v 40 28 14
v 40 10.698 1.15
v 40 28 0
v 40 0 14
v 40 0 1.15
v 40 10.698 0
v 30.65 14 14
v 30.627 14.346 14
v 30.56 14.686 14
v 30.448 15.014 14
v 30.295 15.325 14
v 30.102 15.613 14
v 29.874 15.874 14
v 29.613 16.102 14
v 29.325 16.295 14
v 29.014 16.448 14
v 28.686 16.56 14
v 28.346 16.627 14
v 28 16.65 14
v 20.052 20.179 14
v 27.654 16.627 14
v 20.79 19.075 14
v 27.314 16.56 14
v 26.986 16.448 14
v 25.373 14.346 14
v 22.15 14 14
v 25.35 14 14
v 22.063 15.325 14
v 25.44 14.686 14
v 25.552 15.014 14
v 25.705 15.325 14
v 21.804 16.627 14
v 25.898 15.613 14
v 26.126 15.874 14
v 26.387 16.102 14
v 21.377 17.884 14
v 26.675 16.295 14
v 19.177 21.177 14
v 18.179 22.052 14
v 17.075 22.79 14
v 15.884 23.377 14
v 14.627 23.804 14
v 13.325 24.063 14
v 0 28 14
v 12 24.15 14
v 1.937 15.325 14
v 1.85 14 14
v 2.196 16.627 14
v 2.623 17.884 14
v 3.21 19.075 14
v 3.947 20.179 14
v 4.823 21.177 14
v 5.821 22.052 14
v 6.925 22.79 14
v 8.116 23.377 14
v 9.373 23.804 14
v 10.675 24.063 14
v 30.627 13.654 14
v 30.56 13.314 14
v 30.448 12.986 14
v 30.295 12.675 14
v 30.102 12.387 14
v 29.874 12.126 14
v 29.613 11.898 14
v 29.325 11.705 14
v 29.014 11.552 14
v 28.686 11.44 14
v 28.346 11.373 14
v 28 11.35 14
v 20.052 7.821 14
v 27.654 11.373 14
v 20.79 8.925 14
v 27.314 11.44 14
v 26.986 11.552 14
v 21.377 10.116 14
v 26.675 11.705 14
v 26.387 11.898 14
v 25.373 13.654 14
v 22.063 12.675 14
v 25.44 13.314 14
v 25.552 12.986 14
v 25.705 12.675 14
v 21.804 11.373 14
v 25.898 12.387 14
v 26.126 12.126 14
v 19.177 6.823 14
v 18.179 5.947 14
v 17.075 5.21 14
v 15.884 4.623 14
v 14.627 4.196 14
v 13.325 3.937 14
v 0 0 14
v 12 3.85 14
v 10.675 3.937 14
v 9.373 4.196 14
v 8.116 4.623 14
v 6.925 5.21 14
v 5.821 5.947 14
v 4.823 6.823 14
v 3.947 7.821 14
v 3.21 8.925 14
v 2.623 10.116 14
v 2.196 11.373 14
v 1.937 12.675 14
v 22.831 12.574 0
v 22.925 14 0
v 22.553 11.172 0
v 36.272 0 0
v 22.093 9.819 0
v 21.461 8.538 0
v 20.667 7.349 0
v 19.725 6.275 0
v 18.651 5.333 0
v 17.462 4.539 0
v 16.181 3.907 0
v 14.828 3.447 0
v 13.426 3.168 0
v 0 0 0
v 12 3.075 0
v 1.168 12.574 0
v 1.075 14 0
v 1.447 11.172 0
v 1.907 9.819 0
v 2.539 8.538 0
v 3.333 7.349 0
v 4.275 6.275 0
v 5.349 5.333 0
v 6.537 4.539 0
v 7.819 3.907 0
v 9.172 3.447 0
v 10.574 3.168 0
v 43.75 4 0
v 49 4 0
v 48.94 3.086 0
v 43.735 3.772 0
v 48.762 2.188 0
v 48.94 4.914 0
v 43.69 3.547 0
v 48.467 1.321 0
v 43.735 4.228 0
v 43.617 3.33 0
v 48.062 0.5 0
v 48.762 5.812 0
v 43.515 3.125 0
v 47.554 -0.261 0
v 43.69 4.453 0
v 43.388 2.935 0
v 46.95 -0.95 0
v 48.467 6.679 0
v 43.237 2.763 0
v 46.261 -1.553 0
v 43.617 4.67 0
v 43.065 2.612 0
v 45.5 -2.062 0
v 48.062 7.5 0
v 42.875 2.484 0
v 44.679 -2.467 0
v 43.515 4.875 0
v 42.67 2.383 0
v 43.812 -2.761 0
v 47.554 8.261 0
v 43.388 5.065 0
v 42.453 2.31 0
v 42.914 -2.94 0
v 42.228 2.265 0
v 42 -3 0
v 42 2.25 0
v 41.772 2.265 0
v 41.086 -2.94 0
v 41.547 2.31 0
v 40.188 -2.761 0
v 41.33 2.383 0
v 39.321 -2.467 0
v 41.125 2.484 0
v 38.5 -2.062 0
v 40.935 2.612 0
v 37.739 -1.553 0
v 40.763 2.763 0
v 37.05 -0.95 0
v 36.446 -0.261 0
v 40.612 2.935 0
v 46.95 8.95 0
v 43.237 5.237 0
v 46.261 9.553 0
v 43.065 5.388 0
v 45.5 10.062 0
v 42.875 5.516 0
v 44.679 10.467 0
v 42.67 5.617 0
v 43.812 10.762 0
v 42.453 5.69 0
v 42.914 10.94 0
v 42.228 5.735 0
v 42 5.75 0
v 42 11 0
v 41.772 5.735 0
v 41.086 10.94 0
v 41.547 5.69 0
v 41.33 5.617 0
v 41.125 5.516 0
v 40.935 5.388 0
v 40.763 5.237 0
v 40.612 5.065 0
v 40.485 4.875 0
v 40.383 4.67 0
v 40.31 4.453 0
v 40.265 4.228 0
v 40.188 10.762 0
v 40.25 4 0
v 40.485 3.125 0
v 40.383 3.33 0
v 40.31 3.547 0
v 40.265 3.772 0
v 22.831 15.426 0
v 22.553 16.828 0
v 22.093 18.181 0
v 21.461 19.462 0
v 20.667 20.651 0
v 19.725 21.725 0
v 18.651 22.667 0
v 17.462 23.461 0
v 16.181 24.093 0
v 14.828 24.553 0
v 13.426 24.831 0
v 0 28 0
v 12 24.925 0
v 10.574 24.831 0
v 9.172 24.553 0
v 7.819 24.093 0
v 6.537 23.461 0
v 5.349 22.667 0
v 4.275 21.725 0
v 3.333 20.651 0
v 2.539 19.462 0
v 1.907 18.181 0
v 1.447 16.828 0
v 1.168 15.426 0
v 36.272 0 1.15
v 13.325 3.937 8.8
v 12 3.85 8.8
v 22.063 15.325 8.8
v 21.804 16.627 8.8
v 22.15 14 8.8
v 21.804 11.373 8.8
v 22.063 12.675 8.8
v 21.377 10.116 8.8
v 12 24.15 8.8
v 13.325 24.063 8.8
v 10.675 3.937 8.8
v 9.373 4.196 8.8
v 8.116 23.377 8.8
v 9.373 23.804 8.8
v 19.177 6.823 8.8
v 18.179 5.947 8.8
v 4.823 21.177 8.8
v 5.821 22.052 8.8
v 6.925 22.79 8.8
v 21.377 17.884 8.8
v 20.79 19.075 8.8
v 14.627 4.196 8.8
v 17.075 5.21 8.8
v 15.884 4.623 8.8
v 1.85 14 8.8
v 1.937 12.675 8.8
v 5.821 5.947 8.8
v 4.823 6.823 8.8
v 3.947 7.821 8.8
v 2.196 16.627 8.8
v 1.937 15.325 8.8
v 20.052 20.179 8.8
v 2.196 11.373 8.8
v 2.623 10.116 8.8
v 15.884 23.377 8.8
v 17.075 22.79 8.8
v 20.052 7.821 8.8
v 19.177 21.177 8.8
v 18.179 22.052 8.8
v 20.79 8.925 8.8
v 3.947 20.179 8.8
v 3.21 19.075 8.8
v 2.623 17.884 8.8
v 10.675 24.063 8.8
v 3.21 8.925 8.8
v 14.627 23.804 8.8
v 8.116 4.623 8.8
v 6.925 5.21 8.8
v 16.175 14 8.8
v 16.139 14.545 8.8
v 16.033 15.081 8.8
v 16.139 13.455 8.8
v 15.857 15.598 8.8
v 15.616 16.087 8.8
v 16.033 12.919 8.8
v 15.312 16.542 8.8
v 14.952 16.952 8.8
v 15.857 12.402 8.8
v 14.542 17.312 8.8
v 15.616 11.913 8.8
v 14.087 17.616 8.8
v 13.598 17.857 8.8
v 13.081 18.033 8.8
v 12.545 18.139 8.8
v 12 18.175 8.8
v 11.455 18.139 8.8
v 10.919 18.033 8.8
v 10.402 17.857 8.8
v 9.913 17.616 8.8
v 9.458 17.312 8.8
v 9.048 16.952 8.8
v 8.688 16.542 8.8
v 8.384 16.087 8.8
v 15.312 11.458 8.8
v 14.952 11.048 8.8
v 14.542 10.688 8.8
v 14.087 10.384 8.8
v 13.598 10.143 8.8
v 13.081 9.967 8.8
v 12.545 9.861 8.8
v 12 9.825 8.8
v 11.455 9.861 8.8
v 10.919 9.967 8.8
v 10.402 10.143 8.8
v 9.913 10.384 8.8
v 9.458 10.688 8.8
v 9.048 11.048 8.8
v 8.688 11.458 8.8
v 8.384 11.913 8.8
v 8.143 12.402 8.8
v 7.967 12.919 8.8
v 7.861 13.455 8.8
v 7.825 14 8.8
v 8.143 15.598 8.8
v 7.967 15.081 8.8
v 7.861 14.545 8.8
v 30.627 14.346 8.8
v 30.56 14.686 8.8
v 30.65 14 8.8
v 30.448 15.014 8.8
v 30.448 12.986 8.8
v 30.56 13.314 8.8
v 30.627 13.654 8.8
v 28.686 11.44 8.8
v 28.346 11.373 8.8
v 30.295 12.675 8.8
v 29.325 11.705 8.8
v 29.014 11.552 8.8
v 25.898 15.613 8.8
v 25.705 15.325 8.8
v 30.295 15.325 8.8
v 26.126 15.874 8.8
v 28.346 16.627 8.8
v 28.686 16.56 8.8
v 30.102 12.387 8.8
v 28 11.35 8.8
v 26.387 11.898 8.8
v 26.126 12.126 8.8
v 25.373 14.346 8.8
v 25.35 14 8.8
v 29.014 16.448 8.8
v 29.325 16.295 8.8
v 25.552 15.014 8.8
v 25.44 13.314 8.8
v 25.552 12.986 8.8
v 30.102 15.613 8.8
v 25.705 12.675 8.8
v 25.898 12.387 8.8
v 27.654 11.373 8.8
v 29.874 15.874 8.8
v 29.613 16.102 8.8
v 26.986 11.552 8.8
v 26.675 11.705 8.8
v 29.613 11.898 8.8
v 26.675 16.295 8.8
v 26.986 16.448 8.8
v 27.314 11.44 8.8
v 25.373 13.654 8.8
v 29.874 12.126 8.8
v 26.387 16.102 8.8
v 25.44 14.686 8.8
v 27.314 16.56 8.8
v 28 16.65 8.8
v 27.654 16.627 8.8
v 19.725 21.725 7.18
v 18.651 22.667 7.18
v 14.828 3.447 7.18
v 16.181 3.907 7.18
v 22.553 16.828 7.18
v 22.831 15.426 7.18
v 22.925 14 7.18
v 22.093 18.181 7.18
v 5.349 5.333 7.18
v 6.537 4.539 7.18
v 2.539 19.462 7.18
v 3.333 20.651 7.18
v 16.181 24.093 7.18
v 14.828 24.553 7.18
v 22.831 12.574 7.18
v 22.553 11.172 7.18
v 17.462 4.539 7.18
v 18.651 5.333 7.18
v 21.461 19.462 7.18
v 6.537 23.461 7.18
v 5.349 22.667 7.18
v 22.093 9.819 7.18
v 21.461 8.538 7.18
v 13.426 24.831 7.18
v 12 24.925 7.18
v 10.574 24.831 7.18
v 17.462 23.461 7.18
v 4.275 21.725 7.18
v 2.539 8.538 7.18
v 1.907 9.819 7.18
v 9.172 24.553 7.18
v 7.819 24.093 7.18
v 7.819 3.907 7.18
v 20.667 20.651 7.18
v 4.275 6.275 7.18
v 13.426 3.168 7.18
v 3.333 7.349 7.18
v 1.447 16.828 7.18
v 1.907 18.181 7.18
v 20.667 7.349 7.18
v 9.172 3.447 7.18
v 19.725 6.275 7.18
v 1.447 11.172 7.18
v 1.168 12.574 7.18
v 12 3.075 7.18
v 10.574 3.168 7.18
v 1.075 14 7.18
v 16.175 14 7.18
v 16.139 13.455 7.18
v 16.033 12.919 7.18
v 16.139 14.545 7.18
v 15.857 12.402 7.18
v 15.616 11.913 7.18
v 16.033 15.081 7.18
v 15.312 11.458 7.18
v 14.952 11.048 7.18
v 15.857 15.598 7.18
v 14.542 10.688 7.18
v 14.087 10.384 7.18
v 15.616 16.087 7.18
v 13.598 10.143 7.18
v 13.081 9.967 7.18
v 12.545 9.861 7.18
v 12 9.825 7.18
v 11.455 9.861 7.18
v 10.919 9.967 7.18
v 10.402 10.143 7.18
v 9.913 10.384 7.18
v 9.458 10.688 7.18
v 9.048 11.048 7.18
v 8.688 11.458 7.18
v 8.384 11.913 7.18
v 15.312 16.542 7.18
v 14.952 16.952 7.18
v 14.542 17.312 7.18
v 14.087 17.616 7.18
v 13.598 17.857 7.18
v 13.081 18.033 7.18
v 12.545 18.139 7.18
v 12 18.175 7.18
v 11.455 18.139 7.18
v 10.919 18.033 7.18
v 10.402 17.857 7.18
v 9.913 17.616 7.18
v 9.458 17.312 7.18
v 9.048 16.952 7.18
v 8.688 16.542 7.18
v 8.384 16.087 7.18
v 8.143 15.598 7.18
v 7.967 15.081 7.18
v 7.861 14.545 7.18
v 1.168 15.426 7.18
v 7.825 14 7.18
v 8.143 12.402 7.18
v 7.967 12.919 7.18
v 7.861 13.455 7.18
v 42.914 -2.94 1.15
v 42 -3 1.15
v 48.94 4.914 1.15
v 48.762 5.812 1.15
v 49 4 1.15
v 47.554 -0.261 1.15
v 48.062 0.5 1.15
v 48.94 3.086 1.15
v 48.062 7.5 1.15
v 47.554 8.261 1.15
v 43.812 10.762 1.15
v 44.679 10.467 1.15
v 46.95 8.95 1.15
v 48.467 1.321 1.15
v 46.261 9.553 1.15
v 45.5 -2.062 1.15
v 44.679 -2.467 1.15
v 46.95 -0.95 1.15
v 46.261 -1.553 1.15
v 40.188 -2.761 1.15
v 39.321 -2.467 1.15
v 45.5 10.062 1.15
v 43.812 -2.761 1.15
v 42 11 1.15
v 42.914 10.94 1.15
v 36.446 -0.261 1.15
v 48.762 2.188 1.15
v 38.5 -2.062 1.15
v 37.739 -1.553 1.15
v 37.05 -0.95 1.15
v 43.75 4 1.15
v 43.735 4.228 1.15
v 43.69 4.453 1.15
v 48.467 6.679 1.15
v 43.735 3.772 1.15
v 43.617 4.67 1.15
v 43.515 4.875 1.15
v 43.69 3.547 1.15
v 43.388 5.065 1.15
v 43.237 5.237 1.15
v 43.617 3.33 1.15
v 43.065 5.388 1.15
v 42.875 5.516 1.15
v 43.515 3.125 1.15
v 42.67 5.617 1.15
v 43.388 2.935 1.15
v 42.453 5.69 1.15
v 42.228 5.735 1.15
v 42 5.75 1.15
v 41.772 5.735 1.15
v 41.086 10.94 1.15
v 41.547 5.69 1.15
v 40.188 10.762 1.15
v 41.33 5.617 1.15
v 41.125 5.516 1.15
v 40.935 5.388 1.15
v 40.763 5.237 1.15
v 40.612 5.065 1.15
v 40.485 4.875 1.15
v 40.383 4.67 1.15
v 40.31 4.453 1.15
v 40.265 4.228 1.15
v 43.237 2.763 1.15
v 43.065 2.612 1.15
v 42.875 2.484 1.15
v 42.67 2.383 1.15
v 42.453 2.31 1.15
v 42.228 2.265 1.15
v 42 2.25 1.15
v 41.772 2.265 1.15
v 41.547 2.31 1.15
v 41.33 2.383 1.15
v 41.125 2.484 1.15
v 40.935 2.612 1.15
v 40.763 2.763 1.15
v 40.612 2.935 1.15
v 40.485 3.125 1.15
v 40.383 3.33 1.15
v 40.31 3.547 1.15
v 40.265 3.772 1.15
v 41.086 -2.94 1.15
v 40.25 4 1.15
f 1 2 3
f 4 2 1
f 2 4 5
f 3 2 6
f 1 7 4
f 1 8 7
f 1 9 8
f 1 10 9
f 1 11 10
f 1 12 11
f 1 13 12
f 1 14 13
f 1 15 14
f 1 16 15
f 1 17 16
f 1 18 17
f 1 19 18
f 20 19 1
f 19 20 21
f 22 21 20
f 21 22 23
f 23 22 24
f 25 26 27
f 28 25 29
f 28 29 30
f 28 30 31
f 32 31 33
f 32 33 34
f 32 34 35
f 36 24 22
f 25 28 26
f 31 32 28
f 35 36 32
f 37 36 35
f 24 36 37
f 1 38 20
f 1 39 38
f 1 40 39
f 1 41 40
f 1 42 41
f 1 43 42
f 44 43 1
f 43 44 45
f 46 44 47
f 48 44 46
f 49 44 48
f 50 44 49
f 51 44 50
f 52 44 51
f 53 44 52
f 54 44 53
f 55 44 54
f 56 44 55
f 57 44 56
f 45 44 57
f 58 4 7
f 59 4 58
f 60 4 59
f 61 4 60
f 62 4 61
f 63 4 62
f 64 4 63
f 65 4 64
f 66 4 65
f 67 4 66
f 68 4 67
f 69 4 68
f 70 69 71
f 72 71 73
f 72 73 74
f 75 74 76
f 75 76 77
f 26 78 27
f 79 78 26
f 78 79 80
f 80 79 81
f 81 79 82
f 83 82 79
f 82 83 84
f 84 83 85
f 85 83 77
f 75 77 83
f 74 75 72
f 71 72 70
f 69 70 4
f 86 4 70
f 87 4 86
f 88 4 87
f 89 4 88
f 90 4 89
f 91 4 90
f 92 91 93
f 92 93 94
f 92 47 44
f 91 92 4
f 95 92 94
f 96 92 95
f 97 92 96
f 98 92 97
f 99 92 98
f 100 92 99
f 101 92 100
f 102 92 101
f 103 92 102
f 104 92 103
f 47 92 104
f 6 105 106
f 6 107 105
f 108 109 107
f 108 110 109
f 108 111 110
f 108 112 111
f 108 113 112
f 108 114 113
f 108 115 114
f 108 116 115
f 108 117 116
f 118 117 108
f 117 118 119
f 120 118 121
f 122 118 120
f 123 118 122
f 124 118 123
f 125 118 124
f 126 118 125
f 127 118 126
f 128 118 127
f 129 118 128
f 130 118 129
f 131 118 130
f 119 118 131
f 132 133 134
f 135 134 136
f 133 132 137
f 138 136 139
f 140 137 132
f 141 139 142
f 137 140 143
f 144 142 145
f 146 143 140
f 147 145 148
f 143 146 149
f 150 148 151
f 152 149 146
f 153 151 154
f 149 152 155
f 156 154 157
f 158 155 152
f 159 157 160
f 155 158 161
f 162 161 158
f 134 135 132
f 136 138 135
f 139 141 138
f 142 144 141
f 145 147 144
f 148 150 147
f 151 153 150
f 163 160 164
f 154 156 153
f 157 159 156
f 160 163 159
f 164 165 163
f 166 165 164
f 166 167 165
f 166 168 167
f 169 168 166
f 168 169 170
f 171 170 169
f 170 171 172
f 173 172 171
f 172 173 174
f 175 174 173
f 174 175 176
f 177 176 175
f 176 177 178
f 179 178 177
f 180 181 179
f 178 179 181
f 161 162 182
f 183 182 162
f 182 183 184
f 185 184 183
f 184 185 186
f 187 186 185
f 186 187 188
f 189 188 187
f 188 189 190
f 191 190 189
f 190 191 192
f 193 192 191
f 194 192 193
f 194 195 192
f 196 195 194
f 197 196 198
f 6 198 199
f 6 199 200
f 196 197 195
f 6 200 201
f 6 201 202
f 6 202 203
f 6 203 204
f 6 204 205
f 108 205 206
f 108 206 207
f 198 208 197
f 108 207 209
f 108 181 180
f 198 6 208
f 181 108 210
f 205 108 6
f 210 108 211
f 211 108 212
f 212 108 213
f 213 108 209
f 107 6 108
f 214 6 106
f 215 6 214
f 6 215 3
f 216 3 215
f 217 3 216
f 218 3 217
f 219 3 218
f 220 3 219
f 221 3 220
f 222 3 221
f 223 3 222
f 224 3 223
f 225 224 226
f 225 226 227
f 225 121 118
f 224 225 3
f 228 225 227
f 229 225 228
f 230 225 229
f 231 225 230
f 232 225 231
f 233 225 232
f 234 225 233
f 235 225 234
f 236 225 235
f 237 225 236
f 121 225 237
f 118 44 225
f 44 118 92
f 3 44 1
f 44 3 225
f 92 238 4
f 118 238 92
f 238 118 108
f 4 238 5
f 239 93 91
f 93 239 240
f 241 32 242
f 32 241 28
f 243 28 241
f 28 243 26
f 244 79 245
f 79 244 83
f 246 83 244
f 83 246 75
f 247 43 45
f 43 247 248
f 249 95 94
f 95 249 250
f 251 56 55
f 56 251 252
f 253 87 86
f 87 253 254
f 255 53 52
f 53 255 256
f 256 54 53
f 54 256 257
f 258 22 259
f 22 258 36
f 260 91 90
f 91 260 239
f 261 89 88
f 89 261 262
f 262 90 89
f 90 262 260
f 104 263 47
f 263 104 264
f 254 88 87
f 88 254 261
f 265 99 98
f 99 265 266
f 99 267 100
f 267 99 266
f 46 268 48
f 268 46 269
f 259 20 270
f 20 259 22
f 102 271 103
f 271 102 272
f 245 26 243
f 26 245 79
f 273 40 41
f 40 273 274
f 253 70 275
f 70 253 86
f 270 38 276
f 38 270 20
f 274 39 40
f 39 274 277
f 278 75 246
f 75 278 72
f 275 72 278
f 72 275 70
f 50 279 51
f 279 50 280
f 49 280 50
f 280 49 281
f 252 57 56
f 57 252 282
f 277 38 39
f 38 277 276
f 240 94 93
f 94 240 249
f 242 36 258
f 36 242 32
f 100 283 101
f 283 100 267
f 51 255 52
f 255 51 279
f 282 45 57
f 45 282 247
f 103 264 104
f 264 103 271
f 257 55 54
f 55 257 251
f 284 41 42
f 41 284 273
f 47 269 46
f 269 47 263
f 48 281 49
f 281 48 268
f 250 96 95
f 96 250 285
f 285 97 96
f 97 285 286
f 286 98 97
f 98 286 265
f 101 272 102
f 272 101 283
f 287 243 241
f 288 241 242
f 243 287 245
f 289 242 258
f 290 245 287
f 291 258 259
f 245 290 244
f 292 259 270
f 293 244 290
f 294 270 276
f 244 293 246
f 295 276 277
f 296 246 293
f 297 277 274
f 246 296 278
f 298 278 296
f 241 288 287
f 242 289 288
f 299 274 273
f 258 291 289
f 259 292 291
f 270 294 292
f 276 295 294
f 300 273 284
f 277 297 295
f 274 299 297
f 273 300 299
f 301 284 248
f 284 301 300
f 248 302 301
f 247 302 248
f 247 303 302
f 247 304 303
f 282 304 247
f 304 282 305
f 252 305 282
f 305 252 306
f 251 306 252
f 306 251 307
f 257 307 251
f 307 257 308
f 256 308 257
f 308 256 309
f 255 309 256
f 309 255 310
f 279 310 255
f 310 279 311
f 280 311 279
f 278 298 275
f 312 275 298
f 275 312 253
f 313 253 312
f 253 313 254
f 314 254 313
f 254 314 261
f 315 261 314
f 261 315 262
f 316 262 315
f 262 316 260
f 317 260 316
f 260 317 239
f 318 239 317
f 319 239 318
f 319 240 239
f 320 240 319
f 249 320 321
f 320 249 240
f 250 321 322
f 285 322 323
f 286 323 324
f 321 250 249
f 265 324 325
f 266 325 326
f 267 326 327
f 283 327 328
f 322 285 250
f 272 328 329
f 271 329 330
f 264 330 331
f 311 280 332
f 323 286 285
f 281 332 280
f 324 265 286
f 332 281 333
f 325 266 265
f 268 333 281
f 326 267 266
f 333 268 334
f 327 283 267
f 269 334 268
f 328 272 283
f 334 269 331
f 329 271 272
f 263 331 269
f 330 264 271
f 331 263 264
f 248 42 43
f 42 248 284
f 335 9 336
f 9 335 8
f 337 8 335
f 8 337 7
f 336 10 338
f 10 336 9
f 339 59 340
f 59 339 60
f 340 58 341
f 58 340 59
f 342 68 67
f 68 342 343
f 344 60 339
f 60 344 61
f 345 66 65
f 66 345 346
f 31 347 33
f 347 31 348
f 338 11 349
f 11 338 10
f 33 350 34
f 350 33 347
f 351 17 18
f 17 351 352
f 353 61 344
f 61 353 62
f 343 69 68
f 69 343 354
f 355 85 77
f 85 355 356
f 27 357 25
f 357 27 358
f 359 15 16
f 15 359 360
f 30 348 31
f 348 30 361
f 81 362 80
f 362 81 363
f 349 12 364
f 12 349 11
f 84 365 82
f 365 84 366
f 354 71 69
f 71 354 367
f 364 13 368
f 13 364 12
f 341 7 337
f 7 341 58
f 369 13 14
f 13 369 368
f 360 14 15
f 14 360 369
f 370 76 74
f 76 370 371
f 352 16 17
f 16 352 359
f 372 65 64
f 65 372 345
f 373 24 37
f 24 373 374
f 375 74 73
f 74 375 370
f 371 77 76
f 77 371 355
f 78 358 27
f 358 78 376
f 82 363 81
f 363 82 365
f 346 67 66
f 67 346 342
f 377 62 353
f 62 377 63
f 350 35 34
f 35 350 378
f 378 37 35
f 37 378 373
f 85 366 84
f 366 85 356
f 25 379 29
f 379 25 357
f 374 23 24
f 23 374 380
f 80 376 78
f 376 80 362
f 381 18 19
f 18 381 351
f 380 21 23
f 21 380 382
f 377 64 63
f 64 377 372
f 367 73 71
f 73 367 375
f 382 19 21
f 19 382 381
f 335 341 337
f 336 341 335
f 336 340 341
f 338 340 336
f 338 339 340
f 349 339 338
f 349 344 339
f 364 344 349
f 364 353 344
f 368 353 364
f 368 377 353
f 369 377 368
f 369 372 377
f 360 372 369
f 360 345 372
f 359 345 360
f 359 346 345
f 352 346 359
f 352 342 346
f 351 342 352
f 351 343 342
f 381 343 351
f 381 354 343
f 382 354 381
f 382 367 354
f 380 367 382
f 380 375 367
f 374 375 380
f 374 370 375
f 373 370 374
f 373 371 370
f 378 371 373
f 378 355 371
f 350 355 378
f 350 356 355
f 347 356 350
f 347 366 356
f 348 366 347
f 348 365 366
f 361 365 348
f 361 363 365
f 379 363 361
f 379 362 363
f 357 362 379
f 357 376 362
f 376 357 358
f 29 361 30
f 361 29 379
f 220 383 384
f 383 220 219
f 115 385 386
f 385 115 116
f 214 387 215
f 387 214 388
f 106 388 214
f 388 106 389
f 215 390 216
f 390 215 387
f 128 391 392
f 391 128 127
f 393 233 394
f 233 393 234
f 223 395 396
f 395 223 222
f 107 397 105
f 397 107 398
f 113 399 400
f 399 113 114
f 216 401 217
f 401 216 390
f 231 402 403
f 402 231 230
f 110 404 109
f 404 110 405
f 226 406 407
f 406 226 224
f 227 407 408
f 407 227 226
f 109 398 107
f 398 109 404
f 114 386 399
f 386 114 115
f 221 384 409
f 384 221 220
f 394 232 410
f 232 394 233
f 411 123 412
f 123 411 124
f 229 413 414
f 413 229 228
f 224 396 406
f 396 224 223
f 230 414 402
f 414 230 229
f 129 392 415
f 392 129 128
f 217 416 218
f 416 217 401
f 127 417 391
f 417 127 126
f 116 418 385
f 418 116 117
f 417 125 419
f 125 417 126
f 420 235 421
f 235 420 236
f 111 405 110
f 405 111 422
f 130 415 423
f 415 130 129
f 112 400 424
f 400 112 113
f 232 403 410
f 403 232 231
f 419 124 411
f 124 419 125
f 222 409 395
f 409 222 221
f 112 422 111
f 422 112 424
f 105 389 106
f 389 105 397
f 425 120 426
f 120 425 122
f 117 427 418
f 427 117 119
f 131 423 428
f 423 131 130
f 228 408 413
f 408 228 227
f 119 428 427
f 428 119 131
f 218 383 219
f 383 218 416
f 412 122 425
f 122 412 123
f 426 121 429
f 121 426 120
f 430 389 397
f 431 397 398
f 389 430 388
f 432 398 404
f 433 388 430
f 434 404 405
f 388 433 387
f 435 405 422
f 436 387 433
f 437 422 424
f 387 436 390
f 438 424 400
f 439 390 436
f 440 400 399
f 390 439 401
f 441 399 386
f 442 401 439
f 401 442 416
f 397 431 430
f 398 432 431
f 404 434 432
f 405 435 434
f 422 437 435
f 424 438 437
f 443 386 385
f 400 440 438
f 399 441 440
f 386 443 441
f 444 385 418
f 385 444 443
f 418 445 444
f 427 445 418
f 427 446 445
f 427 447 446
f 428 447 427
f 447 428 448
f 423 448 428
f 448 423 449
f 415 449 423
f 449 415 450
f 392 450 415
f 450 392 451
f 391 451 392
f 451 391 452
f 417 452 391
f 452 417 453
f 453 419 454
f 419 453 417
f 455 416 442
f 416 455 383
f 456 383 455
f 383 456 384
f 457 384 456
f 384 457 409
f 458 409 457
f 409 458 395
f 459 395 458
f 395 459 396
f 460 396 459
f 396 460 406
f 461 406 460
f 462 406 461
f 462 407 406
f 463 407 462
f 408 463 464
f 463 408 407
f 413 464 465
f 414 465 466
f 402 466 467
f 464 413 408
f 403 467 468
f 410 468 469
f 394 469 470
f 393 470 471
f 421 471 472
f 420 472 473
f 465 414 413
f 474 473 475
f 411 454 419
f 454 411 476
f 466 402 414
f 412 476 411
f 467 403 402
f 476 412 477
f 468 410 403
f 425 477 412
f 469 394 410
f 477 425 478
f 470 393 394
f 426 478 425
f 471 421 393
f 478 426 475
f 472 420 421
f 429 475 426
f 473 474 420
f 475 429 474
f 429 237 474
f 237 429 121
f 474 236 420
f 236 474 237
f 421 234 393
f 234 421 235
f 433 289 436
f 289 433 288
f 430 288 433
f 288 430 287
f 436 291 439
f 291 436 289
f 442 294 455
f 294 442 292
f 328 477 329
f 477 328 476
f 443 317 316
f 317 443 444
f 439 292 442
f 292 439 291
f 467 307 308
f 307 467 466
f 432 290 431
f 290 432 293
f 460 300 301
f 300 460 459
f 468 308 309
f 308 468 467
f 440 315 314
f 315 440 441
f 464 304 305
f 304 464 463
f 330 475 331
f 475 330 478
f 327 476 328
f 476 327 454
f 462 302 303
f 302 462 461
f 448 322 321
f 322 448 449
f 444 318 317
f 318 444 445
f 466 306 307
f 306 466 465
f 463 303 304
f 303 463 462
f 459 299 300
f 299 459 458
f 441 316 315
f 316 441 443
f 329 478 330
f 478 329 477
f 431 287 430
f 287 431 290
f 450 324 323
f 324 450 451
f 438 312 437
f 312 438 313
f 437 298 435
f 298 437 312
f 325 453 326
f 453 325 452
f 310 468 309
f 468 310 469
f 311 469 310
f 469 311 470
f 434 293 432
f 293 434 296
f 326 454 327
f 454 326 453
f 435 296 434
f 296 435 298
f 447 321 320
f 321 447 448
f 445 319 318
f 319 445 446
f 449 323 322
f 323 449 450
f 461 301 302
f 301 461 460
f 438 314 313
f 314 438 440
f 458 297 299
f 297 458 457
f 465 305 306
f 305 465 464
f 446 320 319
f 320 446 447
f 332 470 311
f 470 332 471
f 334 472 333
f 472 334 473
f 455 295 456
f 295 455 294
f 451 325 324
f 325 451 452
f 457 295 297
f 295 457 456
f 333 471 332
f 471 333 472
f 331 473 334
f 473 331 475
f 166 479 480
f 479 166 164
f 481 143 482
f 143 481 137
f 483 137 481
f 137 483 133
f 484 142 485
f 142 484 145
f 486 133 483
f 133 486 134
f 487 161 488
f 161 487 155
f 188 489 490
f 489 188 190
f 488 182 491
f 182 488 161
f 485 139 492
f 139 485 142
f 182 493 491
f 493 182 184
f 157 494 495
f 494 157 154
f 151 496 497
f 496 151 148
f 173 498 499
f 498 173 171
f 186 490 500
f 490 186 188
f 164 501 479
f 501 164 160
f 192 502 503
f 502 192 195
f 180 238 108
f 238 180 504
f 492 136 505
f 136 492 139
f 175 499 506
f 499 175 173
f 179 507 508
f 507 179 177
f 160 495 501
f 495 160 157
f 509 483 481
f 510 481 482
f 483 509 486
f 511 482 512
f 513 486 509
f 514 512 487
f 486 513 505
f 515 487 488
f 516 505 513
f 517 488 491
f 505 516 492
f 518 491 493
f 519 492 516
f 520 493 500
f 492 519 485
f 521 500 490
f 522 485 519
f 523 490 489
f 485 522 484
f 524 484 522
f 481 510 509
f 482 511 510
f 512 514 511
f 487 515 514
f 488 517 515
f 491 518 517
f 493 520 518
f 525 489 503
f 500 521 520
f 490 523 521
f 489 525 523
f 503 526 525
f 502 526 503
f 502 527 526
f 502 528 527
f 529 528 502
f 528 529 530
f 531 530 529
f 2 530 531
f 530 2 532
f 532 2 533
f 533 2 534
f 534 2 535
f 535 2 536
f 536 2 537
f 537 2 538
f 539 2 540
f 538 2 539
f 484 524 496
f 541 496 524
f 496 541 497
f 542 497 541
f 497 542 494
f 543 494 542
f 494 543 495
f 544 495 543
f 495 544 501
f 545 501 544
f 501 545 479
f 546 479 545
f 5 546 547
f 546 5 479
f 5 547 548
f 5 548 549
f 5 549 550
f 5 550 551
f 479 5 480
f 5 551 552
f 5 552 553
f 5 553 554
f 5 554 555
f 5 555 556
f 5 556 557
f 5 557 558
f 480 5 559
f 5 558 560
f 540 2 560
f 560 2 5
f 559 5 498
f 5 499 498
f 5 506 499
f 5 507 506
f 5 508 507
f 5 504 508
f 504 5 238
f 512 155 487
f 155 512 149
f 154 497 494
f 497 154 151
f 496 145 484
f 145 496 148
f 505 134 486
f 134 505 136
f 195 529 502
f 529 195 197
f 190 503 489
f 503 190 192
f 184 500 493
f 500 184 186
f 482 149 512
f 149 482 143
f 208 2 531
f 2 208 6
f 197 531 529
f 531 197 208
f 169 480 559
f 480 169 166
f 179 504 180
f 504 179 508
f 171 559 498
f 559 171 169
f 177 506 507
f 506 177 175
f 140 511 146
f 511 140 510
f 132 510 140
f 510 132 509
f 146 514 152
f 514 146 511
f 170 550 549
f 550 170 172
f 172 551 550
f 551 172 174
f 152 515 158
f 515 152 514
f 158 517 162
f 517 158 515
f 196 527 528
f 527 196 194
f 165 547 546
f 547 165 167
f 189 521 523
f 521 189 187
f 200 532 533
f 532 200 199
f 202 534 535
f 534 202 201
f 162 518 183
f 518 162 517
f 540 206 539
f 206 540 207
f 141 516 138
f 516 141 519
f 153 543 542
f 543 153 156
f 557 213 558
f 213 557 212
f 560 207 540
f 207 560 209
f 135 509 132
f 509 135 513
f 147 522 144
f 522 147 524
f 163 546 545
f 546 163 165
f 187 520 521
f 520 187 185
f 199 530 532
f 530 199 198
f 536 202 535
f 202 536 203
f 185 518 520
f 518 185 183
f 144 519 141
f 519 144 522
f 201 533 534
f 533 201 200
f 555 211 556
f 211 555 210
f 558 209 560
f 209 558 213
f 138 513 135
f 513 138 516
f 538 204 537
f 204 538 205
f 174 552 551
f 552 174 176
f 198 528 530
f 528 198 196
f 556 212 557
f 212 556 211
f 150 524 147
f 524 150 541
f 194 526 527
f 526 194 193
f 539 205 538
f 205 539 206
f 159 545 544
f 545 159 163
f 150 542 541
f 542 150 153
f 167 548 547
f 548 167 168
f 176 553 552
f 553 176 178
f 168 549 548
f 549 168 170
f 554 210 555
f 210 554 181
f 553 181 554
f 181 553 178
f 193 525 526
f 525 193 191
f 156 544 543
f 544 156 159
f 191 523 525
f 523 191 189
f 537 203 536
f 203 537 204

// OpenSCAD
// file: parameters.scad
// =============================================================================
// Gen-AE Dual-rotor HYPER-MICRO copper-max AFPM — WOUND-AWARE (HARD GATE)
// PRIMARY challenger vs Gen-AE. Thinner m2m 5.00 + 170 t + larger window.
// =============================================================================

// --- Wire / wind budget (26 AWG, ~1 lb spool ≈ 390 m bare-equiv) --------------
wire_awg            = 26;
wire_od             = 0.45;     // insulated OD mm
turns               = 170;      // +10 vs Gen-AE 160
fill                = 0.70;
layers_per_face     = 2;        // axial layers proud of EACH flange
wind_build_axial    = layers_per_face * wire_od * fill;   // 0.63 mm
wind_build_radial   = 3 * wire_od * fill;                 // 0.945 mm

// --- Pancake former (bare STL) — thinner web than Gen-AE ---------------------
coil_id_r           = 18.5;     // larger copper window vs Gen-AE 20–62
coil_od_r           = 64.0;
span_deg            = 26.0;     // 12 stations × 30° pitch
former_web          = 1.50;     // print-safe min (thinner than AB 1.6)
flange_t            = 0.60;     // print-safe min (≥0.6)
wall                = 1.2;
slot_w              = 2.4;
mount_hole          = 3.5;
tab_len             = 7.0;

former_bare_h       = former_web + 2 * flange_t;            // 2.70 mm
coil_envelope_h     = former_bare_h + 2 * wind_build_axial; // 3.96 mm

// --- Running clearance (magnet face → WOUND face) EACH side ------------------
run_clear           = 0.52;     // PASS ≥ 0.5 (hyper-micro band)
gap_spacer_h        = run_clear + wind_build_axial;         // 1.15 mm
m2m                 = coil_envelope_h + 2 * run_clear;      // 5.00 mm (beats Gen-AE 5.22)

// --- Mid stator (12 pancakes 3φ; winds proud both faces) ---------------------
coil_stations       = 12;
bay_r_in            = coil_id_r - 2.0 - wind_build_radial;
bay_r_out           = coil_od_r + 2.0 + wind_build_radial;
bay_span            = span_deg + 4.0;
bay_offset          = 2.0;
stator_thick        = former_bare_h;                        // winds proud ±Z
stator_od           = 160.0;    // bumped with carrier_od 156
shaft_clear_stator  = 36.0;
coil_mount_r        = 28.0;

// --- Rotors (×2) — 8×Ø20 + 24×Ø5 Halbach each face ---------------------------
large_pocket_d      = 20.3;
small_pocket_d      = 5.3;
pocket_h            = 5.2;
large_n             = 8;
R_large             = 54.0;
R_small_inner       = 42.0;
R_small_mid         = 54.0;
R_small_outer       = 66.0;
carrier_od          = 156.0;
carrier_thick       = 7.5;
hub_h               = 10.0;
hub_od              = 30.0;
rotor_b_offset_deg  = 22.5;

// --- Modular MAX interface (Gen-E family) ------------------------------------
shaft_bore          = 8.35;
bearing_d           = 21.85;
bearing_h           = 7.2;
m3_clear            = 3.5;
bolt_r_inner        = 36.0;
bolt_n_inner        = 6;
flange_bolt_r       = 72.0;
flange_bolt_n       = 6;
brace_r             = 68.0;
brace_d             = 4.3;
brace_n             = 4;

spacer_pad_od       = 14.0;
spacer_pad_id       = m3_clear;
endbell_od          = 160.0;
endbell_thick       = 8.0;
endbell_shaft_clear = 10.0;

$fn = 64;
// main file
// Gen-AE fit coupon — magnet pockets + 608 + spacer height
include <parameters.scad>;
$fn = 48;
block_w = 40; block_d = 28; block_h = 14;
difference() {
    cube([block_w, block_d, block_h]);
    translate([12, block_d/2, block_h - pocket_h])
        cylinder(d=large_pocket_d, h=pocket_h + 0.2);
    translate([28, block_d/2, block_h - pocket_h])
        cylinder(d=small_pocket_d, h=pocket_h + 0.2);
    translate([12, block_d/2, -0.02])
        cylinder(d=bearing_d, h=bearing_h);
    translate([12, block_d/2, -0.1])
        cylinder(d=shaft_bore, h=block_h + 1);
}
translate([block_w + 2, 4, 0])
    difference() {
        cylinder(d=spacer_pad_od, h=gap_spacer_h);
        translate([0, 0, -0.1]) cylinder(d=spacer_pad_id, h=gap_spacer_h + 0.2);
    }
